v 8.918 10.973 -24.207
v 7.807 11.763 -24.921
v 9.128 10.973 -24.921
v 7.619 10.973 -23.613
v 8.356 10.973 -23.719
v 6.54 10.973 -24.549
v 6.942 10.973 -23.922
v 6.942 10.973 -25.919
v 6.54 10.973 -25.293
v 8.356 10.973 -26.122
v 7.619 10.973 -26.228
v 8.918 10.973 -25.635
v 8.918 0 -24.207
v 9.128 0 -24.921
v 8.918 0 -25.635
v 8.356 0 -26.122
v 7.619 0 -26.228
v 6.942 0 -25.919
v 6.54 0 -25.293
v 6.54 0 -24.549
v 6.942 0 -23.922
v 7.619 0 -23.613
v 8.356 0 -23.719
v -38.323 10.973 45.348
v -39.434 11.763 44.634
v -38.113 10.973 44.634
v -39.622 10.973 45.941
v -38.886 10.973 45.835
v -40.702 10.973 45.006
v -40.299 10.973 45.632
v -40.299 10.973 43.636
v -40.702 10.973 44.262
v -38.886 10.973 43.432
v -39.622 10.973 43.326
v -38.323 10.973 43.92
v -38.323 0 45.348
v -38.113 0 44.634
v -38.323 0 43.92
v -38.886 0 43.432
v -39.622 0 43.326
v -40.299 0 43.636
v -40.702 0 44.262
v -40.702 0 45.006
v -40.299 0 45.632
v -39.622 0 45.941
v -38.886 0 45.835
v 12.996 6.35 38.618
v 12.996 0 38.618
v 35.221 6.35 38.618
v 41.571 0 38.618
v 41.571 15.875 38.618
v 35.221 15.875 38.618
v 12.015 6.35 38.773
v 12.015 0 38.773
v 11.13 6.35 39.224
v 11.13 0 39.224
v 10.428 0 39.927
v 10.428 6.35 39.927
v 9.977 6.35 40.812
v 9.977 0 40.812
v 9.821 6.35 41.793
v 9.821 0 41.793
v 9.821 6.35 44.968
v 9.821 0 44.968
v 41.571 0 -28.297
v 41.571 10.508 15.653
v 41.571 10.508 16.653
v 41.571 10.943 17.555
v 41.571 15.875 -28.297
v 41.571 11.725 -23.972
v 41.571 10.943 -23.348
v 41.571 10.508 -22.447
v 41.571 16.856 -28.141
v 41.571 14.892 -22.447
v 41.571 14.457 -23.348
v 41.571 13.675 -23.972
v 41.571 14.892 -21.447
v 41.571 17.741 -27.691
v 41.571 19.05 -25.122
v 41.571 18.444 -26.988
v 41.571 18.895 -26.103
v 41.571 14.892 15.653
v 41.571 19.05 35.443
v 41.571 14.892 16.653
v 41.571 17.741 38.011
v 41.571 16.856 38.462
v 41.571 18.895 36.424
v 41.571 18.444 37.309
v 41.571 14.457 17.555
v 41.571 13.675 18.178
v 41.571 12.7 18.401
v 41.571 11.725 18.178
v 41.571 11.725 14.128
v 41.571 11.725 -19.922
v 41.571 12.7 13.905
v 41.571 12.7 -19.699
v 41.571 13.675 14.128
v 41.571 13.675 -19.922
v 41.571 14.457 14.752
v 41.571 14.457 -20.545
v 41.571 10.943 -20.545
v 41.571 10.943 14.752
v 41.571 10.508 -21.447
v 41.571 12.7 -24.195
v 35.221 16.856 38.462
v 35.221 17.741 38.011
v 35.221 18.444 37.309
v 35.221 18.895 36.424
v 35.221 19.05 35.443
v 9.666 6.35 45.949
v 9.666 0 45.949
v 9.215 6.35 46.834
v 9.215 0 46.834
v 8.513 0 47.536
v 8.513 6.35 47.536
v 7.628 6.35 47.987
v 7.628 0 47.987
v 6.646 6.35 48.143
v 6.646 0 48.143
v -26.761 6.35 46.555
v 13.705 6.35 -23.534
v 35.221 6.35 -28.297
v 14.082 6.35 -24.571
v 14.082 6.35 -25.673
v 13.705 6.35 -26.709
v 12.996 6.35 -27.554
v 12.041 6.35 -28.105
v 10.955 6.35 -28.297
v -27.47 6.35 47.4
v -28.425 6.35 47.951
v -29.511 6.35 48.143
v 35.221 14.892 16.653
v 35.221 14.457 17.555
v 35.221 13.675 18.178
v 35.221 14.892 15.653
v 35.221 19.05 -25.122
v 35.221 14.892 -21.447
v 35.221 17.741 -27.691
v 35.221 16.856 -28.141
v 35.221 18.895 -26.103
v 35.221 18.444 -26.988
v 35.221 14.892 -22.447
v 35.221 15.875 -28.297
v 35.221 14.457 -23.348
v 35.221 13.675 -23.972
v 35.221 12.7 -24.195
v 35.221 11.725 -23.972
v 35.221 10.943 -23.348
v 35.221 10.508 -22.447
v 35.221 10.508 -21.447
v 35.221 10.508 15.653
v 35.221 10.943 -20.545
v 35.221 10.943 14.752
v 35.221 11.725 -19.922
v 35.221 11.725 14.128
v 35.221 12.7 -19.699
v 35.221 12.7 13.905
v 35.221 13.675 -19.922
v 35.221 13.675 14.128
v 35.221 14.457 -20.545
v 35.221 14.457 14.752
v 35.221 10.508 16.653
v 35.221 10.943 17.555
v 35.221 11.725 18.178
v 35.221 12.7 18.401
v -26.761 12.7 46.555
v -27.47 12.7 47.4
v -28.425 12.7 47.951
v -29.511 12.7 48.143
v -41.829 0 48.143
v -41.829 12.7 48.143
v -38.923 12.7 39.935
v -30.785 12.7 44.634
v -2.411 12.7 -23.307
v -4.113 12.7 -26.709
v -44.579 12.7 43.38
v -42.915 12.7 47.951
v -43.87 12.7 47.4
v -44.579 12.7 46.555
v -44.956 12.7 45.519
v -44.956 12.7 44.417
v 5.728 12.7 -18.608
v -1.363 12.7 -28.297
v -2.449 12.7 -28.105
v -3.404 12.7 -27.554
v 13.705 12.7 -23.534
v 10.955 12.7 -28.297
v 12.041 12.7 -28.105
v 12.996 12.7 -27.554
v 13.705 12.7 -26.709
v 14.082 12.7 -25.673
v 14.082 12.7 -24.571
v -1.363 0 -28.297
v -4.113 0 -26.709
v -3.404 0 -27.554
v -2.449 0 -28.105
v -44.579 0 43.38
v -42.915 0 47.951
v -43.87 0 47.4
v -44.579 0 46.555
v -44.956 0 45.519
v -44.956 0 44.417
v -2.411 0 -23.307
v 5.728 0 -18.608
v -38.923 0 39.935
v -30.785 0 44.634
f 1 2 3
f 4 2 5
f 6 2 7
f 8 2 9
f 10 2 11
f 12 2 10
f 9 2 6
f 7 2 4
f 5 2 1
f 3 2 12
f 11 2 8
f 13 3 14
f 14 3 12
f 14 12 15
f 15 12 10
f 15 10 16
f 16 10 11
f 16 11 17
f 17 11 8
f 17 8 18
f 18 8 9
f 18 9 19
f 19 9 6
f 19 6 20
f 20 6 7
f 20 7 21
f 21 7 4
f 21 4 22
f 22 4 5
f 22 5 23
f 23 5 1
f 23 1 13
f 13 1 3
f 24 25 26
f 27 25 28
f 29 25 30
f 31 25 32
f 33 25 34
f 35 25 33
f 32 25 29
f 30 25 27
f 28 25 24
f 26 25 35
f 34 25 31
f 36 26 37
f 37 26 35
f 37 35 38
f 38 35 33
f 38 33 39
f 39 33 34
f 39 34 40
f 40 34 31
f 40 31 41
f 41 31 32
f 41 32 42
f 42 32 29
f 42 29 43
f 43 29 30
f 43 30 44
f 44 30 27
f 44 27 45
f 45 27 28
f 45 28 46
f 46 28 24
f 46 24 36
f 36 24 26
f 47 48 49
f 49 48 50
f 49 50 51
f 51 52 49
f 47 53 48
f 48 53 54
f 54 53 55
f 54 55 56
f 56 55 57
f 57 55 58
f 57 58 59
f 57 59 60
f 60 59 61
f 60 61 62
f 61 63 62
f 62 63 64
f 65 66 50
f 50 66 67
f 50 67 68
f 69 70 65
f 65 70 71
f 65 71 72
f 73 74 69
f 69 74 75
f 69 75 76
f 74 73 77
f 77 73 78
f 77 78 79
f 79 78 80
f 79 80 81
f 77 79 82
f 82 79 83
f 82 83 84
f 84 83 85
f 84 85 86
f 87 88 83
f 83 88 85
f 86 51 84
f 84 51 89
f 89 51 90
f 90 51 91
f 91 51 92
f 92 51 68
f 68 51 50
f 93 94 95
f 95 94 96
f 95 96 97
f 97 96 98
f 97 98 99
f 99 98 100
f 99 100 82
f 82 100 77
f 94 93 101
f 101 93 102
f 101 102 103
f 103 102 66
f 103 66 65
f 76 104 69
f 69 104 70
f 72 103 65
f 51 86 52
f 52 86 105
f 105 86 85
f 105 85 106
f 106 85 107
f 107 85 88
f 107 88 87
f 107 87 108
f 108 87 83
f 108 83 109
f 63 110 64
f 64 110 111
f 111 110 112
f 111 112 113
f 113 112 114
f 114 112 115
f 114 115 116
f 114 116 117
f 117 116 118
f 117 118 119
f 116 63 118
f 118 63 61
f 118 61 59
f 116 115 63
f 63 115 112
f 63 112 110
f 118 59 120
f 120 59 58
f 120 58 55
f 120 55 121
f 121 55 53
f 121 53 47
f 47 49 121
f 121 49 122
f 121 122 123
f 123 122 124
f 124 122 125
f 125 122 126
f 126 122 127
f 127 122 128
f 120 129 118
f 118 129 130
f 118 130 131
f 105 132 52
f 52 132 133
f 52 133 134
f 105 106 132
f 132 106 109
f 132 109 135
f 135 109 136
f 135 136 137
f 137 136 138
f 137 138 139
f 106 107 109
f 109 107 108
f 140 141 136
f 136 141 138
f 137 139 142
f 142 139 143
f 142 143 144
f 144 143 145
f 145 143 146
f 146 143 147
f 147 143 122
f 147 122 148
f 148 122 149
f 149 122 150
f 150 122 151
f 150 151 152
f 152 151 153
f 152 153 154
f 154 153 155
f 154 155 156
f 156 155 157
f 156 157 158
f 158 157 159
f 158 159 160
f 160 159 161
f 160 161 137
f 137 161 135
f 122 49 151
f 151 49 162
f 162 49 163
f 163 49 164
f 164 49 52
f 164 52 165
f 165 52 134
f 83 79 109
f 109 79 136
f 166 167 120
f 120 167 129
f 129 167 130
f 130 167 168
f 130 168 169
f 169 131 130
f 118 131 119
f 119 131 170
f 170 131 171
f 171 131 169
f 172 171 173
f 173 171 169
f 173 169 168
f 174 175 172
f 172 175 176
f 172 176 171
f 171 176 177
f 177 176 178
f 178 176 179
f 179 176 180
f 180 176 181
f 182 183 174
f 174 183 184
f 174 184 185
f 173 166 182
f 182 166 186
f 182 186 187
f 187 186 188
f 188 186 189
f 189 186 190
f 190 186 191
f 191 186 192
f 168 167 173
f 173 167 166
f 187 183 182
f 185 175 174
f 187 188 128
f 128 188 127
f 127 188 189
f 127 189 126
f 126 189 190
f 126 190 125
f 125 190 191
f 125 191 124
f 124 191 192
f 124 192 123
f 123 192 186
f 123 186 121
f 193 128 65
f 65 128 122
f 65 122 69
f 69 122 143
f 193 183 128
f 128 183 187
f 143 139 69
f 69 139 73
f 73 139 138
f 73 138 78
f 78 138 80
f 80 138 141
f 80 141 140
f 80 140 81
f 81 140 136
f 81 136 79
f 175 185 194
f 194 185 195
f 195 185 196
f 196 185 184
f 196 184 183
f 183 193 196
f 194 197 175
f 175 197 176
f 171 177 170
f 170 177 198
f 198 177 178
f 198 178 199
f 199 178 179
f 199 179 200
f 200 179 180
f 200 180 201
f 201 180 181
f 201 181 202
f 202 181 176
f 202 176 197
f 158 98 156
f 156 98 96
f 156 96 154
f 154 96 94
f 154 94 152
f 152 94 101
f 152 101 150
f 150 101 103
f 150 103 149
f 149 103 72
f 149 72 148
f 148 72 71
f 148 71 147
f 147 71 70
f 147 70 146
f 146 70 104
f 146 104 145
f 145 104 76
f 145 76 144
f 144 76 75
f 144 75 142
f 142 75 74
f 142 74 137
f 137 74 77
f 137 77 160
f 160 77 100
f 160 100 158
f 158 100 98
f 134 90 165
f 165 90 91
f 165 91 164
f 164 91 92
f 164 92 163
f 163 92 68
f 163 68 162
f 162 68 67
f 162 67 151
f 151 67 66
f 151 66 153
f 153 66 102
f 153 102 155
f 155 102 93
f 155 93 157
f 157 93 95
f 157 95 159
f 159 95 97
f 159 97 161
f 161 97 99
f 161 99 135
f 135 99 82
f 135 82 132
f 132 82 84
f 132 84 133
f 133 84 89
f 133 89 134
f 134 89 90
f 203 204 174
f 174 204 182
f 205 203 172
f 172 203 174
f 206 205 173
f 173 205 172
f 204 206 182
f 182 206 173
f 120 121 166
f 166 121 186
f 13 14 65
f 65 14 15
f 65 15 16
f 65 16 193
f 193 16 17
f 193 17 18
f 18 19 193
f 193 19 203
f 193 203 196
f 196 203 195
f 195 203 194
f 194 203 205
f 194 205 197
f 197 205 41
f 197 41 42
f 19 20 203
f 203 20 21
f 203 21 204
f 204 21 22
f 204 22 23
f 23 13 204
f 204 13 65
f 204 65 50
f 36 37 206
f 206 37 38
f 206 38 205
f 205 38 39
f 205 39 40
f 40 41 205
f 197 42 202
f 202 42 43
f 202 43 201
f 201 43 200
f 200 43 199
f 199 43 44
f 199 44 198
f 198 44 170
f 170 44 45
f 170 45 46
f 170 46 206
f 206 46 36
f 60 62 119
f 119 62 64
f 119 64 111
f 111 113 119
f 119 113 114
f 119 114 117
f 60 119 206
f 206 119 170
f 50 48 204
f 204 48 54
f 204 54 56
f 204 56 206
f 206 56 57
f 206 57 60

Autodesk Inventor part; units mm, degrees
ref_plane "YZ Plane" through (0, 0, 0) normal (1, 0, 0) x (0, 1, 0)
ref_plane "XZ Plane" through (0, 0, 0) normal (0, 1, 0) x (-1, 0, 0)
ref_plane "XY Plane" through (0, 0, 0) normal (0, 0, 1) x (1, 0, 0)
sketch "Sketch1" plane through (0, 0, 0) normal (0, 1, 0) x (-1, 0, 0)
  line L0 (47.3286, 48.1428) -> (-41.5714, 48.1428)
  line L1 (-41.5714, 48.1428) -> (-41.5714, -28.2969)
  line L2 (-41.5714, -28.2969) -> (3.1961, -28.2969)
  line L3 (47.3286, 48.1428) -> (3.1961, -28.2969)
  point P0 (0, 0)
  dimension "d0" = 60
  dimension "d1" = 88.265
  dimension "d2" = 88.9
extrude "Extrusion1" add sketch "Sketch1" along normal blind 6.35
sketch "Sketch2" plane through (41.5714, 0, 48.1428) normal (1, 0, 0) x (0, 0, -1)
  line L0 (0, 19.05) -> (76.4397, 19.05)
  line L1 (76.4397, 19.05) -> (76.4397, -12.7)
  line L2 (76.4397, -12.7) -> (0, -12.7)
  line L3 (0, -12.7) -> (0, 19.05)
  line L4 (0, 0) -> (76.4397, 0) projected
  line L5 (0, 6.35) -> (76.4397, 6.35) projected
  line L6 (0, 0) -> (0, 6.35) projected
  line L7 (76.4397, 0) -> (76.4397, 6.35) projected
  point P0 (48.1428, 0)
  dimension "d5" = 12.7
  dimension "d6" = 12.7
  dimension "d7" = 0
  dimension "d8" = 0
extrude "Extrusion2" add sketch "Sketch2" against normal blind 6.35 contours L0 L1 L5 L3 | L4 L1 L2 L3
sketch "Sketch3" plane through (0, 6.35, 0) normal (0, 1, 0) x (1, 0, 0)
  line L0 (-47.3286, -48.1428) -> (35.2214, -48.1428) projected
  line L1 (-3.1961, 28.2969) -> (-47.3286, -48.1428) projected
  line L2 (35.2214, 28.2969) -> (-3.1961, 28.2969) projected
  line L3 (-47.3286, -48.1428) -> (35.2214, -48.1428) projected
  line L4 (-47.3286, -48.1428) -> (-3.1961, 28.2969)
  line L5 (-3.1961, 28.2969) -> (16.4546, 28.2969)
  line L6 (35.2214, 28.2969) -> (-3.1961, 28.2969) projected
  line L7 (16.4546, 28.2969) -> (-27.6779, -48.1428)
  line L8 (-47.3286, -48.1428) -> (-27.6779, -48.1428)
  dimension "d13" = 17.018
extrude "Extrusion3" add sketch "Sketch3" along normal blind 6.35
sketch "Sketch4" plane through (0, 12.7, 0) normal (0, 1, 0) x (1, 0, 0)
  line L0 (-3.1961, 28.2969) -> (-47.3286, -48.1428) projected
  line L1 (-38.9235, -39.9348) -> (-2.411, 23.3067)
  line L2 (-2.411, 23.3067) -> (5.7279, 18.6077)
  line L3 (5.7279, 18.6077) -> (-30.7846, -44.6338)
  line L4 (-30.7846, -44.6338) -> (-38.9235, -39.9348)
  point P0 (0, 0)
  dimension "d16" = 9.398
  dimension "d17" = 3.175
  dimension "d18" = 73.025
extrude "Extrusion4" cut sketch "Sketch4" against normal blind 25.4
sketch "Sketch5" plane through (41.5714, 19.05, 48.1428) normal (1, 0, 0) x (0, 0, -1)
  line L0 (76.4397, -31.75) -> (0, -31.75) projected
  line L1 (76.4397, -31.75) -> (76.4397, 0) projected
  line L2 (0, 0) -> (76.4397, 0) projected
  point P0 (48.1428, -19.05)
  point P1 (70.0897, -6.35)
  point P2 (31.9897, -6.35)
  dimension "d22" = 0
  dimension "d23" = 6.35
  dimension "d24" = 38.1
  dimension "d48" = 6.35
hole "Hole1" at (41.5714, 12.7, -21.9469) at (41.5714, 12.7, 16.1531) direction (-1, 0, 0) diameter 4.4958 depth 25.4 tip angle 118.188 clearance for "Flat Head Machine Screw (82)" size "#8" standard "Ansi Unified Screw Threads"
fillet "Fillet1" radius 3.175 1 edges at (-47.3286, 6.35, 48.1428)
fillet "Fillet2" radius 3.175 1 edges at (-3.1961, 6.35, -28.2969)
fillet "Fillet4" radius 3.175 6 edges at (38.3964, -12.7, -28.2969) (38.3964, -12.7, 48.1428) (38.3964, 19.05, -28.2969) (38.3964, 19.05, 48.1428) (16.4546, 9.525, -28.2969) (-27.6779, 9.525, 48.1428)
sketch "Sketch8" plane through (41.5714, -12.7, 44.9678) normal (1, 0, 0) x (0, 0, -1)
  line L0 (-49.5788, 45.5329) -> (6.35, 45.5329)
  line L1 (6.35, 45.5329) -> (6.35, -8.6732)
  line L2 (6.35, -8.6732) -> (-49.5788, -8.6732)
  line L3 (-49.5788, -8.6732) -> (-49.5788, 45.5329)
  line L4 (-3.175, 3.175) -> (-3.175, 28.575) projected
  point P0 (44.9678, 12.7)
  dimension "d41" = 9.525
extrude "Extrusion7" cut sketch "Sketch8" against normal blind 31.75
fillet "Fillet5" radius 3.175 1 edges at (9.8214, 3.175, 48.1428)
fillet "Fillet6" radius 3.175 2 edges at (38.3964, 19.05, 38.6178) (38.3964, -12.7, 38.6178)
fillet "Fillet7" radius 3.175 1 edges at (9.8214, 3.175, 38.6178)
sketch "Sketch10" plane through (41.5714, -9.525, -28.2969) normal (1, 0, 0) x (0, 0, -1)
  line L0 (-71.5248, -9.7742) -> (12.1423, -9.7742)
  line L1 (12.1423, -9.7742) -> (12.1423, 9.525)
  line L2 (12.1423, 9.525) -> (-71.5248, 9.525)
  line L3 (-71.5248, 9.525) -> (-71.5248, -9.7742)
  line L4 (0, 9.525) -> (-66.9147, 9.525) projected
  point P0 (-28.2969, 9.525)
  dimension "d49" = 0
extrude "Extrusion8" cut sketch "Sketch10" against normal blind 31.75
sketch "Sketch11" plane through (0, 0, 0) normal (0, -1, 0) x (1, 0, 0)
  point P0 (0, 0)
  point P1 (7.8072, -24.9207)
  point P2 (-39.4342, 44.6338)
hole "Hole2" at (7.8072, 0, -24.9207) at (-39.4342, 0, 44.6338) direction (0, 1, 0) diameter 2.6416 depth 10.9728 tip angle 118.188 thread size "6-32 UNC" class "2B" standard "ANSI Unified Screw Threads"
properties part number "PhoneStandRight"
